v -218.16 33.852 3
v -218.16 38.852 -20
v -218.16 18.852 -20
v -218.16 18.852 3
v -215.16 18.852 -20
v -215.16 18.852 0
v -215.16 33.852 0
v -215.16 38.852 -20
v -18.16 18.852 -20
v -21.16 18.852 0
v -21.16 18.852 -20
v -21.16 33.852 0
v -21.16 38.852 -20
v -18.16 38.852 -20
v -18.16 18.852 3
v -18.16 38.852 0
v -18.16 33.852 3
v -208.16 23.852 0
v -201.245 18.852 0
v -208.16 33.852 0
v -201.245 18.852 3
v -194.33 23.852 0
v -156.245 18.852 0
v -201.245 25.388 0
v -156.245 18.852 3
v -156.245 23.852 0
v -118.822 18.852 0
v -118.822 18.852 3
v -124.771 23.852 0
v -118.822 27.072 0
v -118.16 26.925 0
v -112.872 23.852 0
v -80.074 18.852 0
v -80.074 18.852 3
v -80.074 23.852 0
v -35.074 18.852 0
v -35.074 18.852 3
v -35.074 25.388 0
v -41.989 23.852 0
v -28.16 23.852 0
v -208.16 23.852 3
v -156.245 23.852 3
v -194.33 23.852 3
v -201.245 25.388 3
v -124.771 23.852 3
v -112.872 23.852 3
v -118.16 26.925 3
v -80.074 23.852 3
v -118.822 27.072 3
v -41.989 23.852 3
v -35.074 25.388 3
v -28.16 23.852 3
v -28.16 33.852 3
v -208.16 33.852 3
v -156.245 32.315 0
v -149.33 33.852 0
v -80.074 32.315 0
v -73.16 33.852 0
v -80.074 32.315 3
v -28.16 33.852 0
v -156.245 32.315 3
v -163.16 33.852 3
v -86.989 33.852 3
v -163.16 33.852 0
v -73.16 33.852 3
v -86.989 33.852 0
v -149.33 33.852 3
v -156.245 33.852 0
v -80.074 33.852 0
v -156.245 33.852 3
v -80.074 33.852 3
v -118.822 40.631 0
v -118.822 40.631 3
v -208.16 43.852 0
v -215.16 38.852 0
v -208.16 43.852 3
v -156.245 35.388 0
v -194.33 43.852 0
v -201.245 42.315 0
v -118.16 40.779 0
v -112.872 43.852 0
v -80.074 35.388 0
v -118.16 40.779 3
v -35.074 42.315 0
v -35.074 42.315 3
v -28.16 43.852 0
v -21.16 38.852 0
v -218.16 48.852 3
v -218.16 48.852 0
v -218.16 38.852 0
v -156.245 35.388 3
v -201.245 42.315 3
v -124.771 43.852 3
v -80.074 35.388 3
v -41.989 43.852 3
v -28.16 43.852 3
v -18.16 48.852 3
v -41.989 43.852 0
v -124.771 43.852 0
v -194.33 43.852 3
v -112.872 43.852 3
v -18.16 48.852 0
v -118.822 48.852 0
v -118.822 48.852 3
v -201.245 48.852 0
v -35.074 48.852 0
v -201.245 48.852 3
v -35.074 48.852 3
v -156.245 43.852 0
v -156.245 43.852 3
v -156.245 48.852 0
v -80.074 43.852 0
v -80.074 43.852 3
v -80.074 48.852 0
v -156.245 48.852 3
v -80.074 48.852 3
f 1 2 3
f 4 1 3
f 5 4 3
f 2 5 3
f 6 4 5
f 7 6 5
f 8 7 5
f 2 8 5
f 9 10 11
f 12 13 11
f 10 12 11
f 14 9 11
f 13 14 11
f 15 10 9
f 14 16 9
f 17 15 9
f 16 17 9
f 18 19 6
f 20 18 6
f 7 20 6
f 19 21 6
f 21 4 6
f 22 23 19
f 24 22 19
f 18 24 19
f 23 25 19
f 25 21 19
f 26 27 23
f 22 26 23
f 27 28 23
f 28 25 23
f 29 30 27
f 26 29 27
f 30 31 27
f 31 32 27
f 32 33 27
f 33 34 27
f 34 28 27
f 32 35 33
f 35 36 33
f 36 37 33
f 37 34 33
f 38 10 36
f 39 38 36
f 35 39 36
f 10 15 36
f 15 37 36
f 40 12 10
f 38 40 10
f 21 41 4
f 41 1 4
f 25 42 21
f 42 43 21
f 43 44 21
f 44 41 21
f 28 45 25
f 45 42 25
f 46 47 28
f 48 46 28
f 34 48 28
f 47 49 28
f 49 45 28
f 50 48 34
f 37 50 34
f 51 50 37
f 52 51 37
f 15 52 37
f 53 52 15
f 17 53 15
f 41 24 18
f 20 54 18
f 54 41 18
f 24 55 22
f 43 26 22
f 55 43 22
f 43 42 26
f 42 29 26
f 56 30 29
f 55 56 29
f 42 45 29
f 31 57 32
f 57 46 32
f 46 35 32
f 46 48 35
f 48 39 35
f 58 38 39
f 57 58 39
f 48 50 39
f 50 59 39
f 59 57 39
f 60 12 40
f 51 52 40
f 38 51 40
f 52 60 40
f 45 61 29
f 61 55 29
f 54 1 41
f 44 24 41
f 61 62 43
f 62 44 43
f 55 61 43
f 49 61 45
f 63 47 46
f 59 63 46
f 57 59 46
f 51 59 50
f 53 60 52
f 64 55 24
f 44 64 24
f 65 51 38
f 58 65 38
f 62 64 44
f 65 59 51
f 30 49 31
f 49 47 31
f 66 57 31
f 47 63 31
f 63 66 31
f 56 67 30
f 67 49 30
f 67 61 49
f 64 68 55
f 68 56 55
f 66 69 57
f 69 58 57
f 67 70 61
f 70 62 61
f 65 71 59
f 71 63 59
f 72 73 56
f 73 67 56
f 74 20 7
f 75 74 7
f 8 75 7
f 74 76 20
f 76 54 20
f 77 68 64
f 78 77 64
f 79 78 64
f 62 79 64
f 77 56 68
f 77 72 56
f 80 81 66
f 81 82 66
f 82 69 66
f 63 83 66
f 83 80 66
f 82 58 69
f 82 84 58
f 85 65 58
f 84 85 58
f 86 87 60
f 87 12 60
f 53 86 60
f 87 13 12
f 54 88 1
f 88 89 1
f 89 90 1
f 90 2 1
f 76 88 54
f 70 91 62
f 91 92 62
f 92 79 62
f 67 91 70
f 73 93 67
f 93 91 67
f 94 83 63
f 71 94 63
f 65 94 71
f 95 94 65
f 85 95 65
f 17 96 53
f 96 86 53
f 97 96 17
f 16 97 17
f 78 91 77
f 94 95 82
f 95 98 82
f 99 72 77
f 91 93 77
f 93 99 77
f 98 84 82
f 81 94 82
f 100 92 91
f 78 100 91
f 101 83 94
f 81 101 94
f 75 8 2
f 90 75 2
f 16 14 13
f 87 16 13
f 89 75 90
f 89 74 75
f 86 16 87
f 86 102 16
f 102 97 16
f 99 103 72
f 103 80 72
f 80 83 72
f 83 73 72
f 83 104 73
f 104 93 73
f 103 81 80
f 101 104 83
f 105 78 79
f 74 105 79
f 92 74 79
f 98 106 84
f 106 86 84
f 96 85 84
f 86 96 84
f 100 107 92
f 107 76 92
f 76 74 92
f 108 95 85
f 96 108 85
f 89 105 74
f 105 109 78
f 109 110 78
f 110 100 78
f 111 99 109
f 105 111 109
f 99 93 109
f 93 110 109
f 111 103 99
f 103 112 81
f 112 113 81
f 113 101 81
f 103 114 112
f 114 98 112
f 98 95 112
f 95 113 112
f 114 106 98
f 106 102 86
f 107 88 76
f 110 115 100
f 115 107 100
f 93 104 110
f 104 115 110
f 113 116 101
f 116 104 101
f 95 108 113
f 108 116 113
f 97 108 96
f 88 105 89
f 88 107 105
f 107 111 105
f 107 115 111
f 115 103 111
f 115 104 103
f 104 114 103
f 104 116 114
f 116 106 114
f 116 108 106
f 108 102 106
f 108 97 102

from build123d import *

# Parameters (mm, degrees)
CROQUIS1_W              = 200
CROQUIS1_H              = 30
SALIENTE_EXTRUIR1_DEPTH = 3
CROQUIS2_W              = 3
CROQUIS2_H              = 20
SALIENTE_EXTRUIR2_DEPTH = 23


with BuildPart() as part:
    # Croquis1 → Saliente-Extruir1 (new body)
    with BuildSketch(Plane.XY):
        with Locations((-118.159579588, 33.85177453)):
            Rectangle(CROQUIS1_W, CROQUIS1_H)
        Polygon((-28.159579588, 43.85177453), (-28.159579588, 23.85177453), (-73.159579588, 33.85177453), align=None, mode=Mode.SUBTRACT)
        Polygon((-208.159579588, 43.85177453), (-163.159579588, 33.85177453), (-208.159579588, 23.85177453), align=None, mode=Mode.SUBTRACT)
        Polygon((-194.330262902, 43.85177453), (-156.244921245, 35.388365273), (-124.77138853, 43.85177453), align=None, mode=Mode.SUBTRACT)
        Polygon((-194.330262902, 23.85177453), (-156.244921245, 32.315183787), (-124.77138853, 23.85177453), align=None, mode=Mode.SUBTRACT)
        Polygon((-118.159579588, 40.778593045), (-149.330262902, 33.85177453), (-118.159579588, 26.924956016), (-86.988896274, 33.85177453), align=None, mode=Mode.SUBTRACT)
        Polygon((-41.988896274, 23.85177453), (-80.074237931, 32.315183787), (-112.871999428, 23.85177453), align=None, mode=Mode.SUBTRACT)
        Polygon((-41.988896274, 43.85177453), (-80.074237931, 35.388365273), (-112.871999428, 43.85177453), align=None, mode=Mode.SUBTRACT)
    extrude(amount=SALIENTE_EXTRUIR1_DEPTH)

    # Croquis2 → Saliente-Extruir2 (add)
    with BuildSketch(Plane.XY.offset(3)):
        with Locations((-216.659579588, 28.85177453)):
            Rectangle(CROQUIS2_W, CROQUIS2_H)
        with Locations((-19.659579588, 28.85177453)):
            Rectangle(CROQUIS2_W, CROQUIS2_H)
    extrude(amount=-SALIENTE_EXTRUIR2_DEPTH)


solid = part.part
